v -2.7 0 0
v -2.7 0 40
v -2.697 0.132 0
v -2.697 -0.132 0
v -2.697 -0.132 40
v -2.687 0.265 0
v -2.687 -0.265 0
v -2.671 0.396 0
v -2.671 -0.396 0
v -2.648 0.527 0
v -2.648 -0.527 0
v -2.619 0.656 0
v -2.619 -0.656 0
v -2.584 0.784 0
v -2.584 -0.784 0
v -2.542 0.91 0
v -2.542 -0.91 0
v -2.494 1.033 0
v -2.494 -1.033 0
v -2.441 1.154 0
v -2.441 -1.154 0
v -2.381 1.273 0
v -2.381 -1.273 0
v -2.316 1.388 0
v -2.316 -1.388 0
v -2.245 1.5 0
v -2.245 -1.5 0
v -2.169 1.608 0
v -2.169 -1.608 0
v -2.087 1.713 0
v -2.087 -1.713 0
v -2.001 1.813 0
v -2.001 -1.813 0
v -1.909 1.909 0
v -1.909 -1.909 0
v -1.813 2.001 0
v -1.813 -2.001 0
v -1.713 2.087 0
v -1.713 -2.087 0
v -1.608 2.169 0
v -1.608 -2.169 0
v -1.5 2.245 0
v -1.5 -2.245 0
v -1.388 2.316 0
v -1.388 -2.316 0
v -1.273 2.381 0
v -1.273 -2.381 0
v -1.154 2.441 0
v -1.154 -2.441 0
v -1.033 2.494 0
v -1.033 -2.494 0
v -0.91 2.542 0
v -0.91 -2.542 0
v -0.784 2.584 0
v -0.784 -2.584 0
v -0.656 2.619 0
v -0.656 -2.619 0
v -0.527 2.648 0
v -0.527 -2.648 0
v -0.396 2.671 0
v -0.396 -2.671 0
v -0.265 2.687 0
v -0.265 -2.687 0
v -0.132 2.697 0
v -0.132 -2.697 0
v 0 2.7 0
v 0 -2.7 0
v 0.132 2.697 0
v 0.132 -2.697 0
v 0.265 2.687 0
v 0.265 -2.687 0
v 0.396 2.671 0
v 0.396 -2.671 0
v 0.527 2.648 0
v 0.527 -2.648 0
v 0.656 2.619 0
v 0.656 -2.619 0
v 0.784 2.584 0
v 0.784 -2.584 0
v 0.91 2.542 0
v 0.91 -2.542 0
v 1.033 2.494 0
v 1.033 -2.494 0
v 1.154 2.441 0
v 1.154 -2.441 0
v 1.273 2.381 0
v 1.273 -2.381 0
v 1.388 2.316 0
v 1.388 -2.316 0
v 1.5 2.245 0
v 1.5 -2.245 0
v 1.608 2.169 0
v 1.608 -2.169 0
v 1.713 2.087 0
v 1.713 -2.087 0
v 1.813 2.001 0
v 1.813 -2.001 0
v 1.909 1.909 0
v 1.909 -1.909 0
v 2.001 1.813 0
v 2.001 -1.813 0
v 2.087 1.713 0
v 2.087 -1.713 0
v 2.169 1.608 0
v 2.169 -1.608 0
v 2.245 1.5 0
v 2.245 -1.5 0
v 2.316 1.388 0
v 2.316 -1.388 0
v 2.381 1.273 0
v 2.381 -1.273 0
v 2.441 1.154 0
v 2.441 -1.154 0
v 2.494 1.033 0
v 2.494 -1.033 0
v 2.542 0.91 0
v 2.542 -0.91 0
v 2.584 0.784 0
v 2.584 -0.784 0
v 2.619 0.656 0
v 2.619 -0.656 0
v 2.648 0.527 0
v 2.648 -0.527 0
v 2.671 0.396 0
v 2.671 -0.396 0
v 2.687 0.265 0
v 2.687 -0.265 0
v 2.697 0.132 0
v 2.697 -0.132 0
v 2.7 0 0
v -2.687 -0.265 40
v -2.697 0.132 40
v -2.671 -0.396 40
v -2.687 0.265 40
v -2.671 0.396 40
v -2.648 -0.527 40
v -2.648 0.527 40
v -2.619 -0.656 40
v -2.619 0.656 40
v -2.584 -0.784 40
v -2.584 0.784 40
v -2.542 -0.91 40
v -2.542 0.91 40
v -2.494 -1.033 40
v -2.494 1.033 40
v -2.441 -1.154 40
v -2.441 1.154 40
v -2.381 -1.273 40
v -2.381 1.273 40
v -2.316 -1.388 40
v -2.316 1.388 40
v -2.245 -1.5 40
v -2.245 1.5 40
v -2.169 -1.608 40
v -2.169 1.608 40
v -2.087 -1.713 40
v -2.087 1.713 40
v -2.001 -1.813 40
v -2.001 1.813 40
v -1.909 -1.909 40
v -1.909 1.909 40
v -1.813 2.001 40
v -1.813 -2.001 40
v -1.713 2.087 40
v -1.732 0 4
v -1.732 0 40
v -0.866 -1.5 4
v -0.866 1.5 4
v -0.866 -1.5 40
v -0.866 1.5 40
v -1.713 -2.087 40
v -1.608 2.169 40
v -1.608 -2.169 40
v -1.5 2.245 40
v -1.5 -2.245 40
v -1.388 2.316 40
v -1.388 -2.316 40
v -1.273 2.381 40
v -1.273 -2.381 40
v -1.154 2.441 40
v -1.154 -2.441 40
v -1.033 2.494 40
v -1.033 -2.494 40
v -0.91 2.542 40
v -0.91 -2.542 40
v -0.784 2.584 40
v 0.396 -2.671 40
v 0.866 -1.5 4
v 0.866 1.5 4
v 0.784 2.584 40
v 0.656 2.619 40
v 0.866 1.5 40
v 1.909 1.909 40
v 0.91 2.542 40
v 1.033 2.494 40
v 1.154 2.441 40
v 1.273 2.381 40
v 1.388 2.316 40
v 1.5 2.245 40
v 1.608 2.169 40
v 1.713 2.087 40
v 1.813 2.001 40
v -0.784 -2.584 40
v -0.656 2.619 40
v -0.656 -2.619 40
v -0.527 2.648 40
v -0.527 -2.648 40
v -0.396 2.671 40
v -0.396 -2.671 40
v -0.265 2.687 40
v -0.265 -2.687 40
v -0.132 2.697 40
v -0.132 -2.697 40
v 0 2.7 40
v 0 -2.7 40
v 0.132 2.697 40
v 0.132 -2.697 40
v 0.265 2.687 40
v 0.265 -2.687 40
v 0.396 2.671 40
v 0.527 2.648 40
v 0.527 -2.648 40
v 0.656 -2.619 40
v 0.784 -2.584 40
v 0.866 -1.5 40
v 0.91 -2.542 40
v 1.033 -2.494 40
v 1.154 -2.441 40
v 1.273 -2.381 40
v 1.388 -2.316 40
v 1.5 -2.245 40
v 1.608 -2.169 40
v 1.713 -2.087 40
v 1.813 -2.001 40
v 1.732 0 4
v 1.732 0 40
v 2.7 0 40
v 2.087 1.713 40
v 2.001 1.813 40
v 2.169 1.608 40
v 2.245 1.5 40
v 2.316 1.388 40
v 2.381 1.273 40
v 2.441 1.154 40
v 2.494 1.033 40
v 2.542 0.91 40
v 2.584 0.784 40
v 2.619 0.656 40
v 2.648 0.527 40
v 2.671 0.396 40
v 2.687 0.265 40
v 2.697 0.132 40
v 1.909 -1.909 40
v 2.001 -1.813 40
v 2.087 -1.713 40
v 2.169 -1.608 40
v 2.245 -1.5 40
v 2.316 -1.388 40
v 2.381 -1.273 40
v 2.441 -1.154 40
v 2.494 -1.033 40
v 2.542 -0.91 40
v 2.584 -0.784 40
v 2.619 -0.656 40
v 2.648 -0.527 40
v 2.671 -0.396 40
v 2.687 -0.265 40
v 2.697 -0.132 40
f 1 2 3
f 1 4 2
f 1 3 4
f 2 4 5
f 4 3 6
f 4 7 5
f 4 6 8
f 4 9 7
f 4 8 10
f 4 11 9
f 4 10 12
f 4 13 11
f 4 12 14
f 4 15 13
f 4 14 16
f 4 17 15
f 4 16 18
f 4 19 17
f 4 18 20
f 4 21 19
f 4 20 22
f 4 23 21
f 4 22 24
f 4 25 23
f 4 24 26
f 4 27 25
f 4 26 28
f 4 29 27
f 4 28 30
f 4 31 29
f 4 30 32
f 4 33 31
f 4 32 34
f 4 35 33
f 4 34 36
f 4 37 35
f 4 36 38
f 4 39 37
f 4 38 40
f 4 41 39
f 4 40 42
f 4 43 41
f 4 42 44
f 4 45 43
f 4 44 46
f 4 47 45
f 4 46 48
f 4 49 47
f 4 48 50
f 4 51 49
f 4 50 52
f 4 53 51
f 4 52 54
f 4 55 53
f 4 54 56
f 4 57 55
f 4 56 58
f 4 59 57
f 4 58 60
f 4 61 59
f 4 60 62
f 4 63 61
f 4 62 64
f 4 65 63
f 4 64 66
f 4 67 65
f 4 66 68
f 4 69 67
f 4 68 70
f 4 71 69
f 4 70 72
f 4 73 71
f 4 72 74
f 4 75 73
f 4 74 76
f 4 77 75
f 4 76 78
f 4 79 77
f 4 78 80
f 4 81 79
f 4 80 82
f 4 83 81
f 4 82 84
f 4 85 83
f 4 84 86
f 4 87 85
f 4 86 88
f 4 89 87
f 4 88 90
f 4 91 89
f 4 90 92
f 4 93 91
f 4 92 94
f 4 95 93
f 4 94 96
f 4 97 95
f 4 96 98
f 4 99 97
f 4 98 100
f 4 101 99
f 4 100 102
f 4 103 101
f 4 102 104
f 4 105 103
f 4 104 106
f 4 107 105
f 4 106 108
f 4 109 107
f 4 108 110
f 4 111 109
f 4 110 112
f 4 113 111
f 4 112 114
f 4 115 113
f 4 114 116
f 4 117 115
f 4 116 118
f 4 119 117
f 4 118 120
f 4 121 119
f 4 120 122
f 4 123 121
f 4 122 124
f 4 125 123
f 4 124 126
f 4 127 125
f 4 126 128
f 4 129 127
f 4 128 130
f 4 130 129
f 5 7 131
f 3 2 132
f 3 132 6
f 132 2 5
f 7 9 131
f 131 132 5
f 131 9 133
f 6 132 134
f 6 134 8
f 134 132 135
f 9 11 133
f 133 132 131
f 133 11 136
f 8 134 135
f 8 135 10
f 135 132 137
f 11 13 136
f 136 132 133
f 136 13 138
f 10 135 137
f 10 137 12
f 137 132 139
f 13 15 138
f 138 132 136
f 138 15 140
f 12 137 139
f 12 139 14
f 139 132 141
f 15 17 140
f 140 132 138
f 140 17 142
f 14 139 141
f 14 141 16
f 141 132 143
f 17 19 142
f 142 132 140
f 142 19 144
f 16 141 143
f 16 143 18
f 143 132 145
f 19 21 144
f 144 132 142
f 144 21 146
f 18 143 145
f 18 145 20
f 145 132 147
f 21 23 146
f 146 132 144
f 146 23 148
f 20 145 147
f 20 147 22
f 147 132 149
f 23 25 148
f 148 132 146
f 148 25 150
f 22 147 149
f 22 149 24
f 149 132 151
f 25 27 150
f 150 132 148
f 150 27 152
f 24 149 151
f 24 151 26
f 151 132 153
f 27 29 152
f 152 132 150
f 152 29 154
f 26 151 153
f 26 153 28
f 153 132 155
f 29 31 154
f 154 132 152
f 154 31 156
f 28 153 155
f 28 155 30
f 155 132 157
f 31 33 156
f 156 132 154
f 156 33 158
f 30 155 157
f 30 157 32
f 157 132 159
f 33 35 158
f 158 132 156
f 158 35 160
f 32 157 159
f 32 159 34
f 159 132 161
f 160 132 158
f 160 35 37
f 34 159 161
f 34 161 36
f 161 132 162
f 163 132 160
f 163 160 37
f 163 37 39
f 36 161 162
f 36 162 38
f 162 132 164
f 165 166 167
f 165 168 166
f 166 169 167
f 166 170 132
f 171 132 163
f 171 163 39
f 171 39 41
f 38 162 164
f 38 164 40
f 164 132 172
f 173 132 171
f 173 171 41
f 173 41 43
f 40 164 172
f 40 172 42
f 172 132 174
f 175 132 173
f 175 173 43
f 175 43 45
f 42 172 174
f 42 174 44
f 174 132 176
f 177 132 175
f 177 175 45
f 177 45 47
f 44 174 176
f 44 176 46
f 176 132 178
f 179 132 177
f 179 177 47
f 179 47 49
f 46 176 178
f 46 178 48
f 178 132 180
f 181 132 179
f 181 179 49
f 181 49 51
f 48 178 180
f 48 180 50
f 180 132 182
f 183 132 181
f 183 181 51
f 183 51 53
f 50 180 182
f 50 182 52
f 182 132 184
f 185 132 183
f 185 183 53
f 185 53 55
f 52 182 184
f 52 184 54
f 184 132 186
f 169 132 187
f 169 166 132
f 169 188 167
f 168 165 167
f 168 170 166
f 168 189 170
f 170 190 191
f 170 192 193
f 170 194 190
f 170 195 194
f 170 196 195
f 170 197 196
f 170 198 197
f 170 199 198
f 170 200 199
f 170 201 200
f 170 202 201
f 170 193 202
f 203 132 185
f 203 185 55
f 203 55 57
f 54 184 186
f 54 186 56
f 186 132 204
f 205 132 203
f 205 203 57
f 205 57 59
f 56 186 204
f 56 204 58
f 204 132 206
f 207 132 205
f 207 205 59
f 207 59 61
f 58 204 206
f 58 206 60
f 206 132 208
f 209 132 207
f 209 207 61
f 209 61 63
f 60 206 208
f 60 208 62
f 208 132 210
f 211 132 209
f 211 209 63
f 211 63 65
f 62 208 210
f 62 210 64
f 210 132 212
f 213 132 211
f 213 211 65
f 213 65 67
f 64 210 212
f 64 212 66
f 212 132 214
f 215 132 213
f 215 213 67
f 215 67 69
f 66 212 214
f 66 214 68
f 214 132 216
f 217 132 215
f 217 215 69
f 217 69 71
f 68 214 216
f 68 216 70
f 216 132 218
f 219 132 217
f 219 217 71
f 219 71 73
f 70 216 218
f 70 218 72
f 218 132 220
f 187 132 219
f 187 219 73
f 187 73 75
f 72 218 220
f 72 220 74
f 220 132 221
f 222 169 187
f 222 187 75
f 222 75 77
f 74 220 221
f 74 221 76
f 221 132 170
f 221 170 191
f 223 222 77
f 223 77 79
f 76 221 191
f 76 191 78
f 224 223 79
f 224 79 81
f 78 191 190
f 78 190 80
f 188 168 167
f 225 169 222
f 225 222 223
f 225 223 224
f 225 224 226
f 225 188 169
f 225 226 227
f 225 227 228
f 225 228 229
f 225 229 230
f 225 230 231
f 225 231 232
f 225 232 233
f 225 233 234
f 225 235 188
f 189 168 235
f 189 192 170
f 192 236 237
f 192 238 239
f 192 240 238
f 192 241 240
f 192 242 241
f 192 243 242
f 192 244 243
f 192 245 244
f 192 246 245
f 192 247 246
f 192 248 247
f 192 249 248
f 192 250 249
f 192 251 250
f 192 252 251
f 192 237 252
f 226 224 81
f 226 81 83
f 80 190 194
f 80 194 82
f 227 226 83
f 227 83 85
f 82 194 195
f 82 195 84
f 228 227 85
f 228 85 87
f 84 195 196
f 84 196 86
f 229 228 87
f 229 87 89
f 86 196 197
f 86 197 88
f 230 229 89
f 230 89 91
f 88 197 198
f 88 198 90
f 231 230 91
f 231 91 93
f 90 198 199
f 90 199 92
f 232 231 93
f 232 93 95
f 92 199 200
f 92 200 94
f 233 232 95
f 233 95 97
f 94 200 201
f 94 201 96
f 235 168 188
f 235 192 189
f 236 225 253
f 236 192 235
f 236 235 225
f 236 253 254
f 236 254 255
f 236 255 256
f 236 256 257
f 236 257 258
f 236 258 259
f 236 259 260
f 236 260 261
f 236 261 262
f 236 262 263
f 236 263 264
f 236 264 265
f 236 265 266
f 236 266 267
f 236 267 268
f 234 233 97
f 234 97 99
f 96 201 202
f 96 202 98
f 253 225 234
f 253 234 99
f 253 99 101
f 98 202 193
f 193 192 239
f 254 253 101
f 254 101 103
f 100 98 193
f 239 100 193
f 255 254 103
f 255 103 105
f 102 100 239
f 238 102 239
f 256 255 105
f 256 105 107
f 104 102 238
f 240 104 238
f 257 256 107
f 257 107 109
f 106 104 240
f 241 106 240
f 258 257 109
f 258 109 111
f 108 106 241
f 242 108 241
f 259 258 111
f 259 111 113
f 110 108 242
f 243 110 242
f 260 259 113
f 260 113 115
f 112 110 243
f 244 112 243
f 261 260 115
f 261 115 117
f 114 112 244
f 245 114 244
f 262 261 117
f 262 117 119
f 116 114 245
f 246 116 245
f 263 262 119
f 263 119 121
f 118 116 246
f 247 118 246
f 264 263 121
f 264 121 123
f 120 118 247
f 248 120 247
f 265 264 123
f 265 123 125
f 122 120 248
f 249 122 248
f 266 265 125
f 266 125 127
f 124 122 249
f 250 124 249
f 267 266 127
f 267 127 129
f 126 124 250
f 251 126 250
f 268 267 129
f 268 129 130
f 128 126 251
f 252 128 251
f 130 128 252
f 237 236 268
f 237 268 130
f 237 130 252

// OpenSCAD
// file: polyhole.scad
module polyhole(h, d) {
    n = max(round(2 * d),3);
    rotate([0,0,180])
        cylinder(h = h, r = (d / 2) / cos (180 / n), $fn = n);
}
// main file
include <polyhole.scad>

lh=0.32;
lw=0.4;

id=3;
od=id+3*lw*2;
handle_base=4;
handle_len=40;

$fn=128;

union() {
  cylinder(h=handle_base,d=od);
  difference() {
    cylinder(h=handle_len,d=od);
    polyhole(h=handle_len+1,d=id);
  }
}
